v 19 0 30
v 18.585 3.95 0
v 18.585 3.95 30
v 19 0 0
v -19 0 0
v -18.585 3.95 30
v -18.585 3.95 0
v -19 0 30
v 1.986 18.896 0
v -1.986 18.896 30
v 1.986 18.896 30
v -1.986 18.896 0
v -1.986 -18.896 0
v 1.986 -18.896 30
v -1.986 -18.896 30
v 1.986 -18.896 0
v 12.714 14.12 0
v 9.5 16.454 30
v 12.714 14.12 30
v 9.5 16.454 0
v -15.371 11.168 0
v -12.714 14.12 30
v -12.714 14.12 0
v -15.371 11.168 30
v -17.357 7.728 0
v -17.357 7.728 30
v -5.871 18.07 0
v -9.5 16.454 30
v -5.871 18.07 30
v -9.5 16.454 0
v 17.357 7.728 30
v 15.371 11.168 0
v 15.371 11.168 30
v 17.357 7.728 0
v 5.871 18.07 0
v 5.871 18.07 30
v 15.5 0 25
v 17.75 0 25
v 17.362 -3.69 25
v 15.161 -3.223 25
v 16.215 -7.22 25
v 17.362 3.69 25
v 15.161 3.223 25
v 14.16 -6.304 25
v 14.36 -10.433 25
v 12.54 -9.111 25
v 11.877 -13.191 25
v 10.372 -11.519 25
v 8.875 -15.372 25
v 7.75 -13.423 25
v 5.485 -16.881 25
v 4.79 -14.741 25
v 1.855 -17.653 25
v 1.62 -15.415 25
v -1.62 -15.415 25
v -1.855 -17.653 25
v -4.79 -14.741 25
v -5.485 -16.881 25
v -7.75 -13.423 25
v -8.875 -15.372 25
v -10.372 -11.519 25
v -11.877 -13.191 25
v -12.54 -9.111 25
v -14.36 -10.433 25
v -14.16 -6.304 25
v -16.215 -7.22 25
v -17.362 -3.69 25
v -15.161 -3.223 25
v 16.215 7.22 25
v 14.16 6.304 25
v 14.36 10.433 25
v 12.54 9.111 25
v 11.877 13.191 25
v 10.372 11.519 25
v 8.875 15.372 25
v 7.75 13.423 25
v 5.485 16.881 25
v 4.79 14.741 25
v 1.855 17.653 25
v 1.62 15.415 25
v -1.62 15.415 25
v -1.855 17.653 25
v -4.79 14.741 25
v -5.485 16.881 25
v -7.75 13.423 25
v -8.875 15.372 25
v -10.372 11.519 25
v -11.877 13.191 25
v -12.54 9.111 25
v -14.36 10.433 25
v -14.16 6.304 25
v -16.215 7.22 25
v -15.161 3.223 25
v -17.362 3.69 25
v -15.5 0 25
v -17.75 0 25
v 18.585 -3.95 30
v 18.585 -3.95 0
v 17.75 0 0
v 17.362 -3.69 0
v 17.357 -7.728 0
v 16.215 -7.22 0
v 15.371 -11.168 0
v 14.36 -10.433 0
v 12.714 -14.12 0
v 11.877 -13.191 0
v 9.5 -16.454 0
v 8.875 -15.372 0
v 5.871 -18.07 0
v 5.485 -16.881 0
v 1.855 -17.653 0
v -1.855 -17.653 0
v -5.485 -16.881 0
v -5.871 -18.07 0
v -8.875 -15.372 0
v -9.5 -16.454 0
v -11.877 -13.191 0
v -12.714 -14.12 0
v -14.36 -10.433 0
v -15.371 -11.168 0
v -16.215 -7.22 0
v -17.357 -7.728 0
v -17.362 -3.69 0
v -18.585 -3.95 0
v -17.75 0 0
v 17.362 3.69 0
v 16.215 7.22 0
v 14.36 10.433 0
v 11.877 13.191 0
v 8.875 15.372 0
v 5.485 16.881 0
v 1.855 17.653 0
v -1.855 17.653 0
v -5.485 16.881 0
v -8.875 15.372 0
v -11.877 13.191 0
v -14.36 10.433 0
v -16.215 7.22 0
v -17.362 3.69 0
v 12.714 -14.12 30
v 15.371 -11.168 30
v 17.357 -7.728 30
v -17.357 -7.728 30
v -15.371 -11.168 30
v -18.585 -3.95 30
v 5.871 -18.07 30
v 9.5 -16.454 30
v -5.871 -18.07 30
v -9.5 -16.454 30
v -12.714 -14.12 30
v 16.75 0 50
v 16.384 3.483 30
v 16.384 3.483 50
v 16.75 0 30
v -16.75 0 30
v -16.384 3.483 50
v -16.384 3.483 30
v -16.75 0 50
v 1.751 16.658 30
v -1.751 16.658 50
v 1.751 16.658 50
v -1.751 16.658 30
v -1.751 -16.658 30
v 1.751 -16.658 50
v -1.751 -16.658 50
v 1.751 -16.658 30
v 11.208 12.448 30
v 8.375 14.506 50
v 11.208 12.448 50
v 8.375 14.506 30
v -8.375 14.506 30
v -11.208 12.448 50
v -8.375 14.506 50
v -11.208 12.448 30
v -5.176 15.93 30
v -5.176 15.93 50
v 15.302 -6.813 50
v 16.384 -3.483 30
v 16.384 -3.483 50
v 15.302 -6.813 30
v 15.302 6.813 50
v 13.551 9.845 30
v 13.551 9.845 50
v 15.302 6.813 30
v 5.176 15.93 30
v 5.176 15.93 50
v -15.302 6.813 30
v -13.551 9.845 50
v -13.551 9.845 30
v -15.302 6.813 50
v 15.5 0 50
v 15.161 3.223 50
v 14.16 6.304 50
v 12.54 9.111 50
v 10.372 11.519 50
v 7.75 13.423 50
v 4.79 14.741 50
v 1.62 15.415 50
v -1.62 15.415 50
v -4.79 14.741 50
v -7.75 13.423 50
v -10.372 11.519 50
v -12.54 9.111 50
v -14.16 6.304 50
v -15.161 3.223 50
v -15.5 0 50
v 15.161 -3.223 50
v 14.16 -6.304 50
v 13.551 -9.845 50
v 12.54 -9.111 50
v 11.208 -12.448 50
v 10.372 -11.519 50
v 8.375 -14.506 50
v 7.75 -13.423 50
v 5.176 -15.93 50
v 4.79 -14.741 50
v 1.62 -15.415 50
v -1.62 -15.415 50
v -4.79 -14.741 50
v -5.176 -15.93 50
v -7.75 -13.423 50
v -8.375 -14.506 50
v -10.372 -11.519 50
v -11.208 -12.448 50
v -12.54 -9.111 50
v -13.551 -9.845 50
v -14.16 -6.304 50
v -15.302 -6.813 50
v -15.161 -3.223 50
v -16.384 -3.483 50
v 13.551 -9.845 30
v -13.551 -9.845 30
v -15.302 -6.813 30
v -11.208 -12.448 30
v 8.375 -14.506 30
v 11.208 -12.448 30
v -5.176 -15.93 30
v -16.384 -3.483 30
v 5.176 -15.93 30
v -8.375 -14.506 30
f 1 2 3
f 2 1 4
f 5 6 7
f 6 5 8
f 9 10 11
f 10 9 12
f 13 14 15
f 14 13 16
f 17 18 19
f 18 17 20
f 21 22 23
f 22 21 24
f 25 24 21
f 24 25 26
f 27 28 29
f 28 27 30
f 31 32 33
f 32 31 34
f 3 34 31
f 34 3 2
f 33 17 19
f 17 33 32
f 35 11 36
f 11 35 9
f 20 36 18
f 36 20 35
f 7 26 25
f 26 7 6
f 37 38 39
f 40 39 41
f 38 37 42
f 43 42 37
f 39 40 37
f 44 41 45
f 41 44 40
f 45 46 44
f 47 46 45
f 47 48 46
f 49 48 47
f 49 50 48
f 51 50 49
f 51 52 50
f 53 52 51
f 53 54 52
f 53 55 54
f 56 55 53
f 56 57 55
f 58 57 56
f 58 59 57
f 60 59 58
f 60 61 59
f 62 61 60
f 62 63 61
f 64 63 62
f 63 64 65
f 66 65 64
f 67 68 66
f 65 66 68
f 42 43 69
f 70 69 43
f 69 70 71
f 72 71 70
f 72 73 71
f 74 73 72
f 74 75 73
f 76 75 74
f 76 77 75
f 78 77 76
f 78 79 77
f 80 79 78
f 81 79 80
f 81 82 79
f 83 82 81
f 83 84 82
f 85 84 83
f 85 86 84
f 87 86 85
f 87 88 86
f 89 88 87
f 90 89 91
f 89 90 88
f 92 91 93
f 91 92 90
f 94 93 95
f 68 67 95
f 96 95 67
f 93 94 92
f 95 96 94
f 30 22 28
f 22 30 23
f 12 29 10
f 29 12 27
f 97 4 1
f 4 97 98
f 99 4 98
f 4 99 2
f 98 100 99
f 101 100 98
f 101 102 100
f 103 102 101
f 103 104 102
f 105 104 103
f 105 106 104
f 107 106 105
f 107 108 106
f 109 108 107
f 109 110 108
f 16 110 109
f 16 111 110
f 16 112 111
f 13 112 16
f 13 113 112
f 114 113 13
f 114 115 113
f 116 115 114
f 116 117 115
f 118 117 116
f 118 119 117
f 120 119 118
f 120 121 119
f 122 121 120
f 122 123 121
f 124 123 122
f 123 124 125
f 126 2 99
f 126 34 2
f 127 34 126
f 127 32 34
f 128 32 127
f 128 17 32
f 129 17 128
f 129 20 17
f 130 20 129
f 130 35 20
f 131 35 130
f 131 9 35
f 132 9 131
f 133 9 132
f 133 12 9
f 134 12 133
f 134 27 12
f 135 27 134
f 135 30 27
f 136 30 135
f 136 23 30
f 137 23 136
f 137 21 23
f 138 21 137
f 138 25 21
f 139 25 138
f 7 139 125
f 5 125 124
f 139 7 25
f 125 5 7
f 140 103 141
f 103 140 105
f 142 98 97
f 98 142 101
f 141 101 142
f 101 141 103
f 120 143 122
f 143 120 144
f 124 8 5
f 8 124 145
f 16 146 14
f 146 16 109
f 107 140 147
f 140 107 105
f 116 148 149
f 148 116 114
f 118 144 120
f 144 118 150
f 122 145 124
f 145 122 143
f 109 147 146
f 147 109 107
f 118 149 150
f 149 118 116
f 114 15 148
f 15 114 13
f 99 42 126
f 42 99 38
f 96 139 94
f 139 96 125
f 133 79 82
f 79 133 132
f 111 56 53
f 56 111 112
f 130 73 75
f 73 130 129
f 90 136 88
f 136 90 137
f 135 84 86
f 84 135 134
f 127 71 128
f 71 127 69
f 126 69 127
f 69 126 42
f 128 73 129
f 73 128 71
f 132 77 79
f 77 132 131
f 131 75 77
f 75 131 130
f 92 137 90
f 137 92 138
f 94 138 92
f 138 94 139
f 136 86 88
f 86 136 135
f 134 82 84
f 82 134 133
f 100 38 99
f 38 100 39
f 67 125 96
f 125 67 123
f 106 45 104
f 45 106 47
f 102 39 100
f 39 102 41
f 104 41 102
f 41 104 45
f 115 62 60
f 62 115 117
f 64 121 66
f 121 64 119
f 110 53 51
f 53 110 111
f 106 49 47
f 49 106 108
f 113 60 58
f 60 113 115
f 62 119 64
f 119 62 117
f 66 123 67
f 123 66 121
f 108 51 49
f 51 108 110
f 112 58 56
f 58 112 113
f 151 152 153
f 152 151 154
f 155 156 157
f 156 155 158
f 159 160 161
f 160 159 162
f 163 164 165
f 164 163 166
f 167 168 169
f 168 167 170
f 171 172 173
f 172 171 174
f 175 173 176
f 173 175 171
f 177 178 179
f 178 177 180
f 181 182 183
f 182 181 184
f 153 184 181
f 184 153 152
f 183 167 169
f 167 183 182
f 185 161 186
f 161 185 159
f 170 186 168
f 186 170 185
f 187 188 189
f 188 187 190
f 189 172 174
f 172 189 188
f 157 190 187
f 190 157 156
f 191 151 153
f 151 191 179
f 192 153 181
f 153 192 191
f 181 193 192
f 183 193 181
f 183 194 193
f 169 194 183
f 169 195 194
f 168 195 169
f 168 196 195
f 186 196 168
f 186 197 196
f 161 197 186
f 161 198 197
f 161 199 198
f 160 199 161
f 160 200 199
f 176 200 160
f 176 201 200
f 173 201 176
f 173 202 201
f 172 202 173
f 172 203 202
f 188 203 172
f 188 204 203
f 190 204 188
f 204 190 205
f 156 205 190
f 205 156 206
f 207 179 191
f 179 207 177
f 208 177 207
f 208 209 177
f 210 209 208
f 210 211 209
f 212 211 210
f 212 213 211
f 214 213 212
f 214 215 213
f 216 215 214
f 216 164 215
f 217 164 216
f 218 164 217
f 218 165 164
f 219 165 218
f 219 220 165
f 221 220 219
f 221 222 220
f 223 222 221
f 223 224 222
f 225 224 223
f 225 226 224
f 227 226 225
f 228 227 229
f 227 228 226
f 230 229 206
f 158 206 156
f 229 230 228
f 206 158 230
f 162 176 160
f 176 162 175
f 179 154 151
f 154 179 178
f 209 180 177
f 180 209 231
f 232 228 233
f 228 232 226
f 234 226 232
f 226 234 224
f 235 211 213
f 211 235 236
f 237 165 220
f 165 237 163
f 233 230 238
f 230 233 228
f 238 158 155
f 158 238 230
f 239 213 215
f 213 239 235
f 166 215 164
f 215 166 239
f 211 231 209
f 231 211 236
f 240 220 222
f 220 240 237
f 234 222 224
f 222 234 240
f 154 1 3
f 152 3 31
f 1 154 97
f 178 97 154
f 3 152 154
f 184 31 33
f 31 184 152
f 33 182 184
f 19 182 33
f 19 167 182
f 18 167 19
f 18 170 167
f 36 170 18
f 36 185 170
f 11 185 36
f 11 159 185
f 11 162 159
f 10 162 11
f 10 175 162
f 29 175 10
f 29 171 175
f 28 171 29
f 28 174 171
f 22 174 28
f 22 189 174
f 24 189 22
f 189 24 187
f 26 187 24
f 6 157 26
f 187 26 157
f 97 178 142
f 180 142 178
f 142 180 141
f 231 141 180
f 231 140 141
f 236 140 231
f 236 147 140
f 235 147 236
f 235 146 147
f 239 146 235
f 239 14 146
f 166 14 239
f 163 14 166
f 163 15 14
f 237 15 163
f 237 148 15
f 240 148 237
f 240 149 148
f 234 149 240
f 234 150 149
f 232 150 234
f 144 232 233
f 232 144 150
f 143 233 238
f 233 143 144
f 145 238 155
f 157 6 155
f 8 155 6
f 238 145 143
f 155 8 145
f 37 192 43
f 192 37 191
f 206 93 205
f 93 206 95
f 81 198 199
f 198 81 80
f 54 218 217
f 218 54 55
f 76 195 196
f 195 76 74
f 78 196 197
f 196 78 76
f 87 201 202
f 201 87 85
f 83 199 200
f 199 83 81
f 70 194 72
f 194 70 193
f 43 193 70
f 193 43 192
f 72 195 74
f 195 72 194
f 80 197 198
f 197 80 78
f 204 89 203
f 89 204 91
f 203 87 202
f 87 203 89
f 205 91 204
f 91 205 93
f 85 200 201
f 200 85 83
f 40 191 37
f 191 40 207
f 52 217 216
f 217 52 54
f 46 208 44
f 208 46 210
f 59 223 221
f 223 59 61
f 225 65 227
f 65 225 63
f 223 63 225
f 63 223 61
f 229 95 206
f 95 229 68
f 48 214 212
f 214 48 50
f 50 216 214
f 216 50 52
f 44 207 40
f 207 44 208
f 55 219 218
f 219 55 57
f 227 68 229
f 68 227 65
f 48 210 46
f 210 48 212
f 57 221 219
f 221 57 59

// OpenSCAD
hole_1_dia = 35.3;
hole_2_dia = 33.7;
outer_dia = 38.0;
inner_dia = 31.0;
tolerance = 0.2;
height = 25.0;

difference() {
    cylinder(d = outer_dia, h = height);
    
    translate([0, 0, -1])
        cylinder(d = hole_1_dia + tolerance, h = height + 2);
}

translate([0, 0, height])
difference() {
    union() {
        cylinder(d = hole_2_dia - tolerance, h = height);
            
        cylinder(d = outer_dia, h = 5);
    }
    
    translate([0, 0, -1])
    cylinder(d = inner_dia, h = height + 2);
}
